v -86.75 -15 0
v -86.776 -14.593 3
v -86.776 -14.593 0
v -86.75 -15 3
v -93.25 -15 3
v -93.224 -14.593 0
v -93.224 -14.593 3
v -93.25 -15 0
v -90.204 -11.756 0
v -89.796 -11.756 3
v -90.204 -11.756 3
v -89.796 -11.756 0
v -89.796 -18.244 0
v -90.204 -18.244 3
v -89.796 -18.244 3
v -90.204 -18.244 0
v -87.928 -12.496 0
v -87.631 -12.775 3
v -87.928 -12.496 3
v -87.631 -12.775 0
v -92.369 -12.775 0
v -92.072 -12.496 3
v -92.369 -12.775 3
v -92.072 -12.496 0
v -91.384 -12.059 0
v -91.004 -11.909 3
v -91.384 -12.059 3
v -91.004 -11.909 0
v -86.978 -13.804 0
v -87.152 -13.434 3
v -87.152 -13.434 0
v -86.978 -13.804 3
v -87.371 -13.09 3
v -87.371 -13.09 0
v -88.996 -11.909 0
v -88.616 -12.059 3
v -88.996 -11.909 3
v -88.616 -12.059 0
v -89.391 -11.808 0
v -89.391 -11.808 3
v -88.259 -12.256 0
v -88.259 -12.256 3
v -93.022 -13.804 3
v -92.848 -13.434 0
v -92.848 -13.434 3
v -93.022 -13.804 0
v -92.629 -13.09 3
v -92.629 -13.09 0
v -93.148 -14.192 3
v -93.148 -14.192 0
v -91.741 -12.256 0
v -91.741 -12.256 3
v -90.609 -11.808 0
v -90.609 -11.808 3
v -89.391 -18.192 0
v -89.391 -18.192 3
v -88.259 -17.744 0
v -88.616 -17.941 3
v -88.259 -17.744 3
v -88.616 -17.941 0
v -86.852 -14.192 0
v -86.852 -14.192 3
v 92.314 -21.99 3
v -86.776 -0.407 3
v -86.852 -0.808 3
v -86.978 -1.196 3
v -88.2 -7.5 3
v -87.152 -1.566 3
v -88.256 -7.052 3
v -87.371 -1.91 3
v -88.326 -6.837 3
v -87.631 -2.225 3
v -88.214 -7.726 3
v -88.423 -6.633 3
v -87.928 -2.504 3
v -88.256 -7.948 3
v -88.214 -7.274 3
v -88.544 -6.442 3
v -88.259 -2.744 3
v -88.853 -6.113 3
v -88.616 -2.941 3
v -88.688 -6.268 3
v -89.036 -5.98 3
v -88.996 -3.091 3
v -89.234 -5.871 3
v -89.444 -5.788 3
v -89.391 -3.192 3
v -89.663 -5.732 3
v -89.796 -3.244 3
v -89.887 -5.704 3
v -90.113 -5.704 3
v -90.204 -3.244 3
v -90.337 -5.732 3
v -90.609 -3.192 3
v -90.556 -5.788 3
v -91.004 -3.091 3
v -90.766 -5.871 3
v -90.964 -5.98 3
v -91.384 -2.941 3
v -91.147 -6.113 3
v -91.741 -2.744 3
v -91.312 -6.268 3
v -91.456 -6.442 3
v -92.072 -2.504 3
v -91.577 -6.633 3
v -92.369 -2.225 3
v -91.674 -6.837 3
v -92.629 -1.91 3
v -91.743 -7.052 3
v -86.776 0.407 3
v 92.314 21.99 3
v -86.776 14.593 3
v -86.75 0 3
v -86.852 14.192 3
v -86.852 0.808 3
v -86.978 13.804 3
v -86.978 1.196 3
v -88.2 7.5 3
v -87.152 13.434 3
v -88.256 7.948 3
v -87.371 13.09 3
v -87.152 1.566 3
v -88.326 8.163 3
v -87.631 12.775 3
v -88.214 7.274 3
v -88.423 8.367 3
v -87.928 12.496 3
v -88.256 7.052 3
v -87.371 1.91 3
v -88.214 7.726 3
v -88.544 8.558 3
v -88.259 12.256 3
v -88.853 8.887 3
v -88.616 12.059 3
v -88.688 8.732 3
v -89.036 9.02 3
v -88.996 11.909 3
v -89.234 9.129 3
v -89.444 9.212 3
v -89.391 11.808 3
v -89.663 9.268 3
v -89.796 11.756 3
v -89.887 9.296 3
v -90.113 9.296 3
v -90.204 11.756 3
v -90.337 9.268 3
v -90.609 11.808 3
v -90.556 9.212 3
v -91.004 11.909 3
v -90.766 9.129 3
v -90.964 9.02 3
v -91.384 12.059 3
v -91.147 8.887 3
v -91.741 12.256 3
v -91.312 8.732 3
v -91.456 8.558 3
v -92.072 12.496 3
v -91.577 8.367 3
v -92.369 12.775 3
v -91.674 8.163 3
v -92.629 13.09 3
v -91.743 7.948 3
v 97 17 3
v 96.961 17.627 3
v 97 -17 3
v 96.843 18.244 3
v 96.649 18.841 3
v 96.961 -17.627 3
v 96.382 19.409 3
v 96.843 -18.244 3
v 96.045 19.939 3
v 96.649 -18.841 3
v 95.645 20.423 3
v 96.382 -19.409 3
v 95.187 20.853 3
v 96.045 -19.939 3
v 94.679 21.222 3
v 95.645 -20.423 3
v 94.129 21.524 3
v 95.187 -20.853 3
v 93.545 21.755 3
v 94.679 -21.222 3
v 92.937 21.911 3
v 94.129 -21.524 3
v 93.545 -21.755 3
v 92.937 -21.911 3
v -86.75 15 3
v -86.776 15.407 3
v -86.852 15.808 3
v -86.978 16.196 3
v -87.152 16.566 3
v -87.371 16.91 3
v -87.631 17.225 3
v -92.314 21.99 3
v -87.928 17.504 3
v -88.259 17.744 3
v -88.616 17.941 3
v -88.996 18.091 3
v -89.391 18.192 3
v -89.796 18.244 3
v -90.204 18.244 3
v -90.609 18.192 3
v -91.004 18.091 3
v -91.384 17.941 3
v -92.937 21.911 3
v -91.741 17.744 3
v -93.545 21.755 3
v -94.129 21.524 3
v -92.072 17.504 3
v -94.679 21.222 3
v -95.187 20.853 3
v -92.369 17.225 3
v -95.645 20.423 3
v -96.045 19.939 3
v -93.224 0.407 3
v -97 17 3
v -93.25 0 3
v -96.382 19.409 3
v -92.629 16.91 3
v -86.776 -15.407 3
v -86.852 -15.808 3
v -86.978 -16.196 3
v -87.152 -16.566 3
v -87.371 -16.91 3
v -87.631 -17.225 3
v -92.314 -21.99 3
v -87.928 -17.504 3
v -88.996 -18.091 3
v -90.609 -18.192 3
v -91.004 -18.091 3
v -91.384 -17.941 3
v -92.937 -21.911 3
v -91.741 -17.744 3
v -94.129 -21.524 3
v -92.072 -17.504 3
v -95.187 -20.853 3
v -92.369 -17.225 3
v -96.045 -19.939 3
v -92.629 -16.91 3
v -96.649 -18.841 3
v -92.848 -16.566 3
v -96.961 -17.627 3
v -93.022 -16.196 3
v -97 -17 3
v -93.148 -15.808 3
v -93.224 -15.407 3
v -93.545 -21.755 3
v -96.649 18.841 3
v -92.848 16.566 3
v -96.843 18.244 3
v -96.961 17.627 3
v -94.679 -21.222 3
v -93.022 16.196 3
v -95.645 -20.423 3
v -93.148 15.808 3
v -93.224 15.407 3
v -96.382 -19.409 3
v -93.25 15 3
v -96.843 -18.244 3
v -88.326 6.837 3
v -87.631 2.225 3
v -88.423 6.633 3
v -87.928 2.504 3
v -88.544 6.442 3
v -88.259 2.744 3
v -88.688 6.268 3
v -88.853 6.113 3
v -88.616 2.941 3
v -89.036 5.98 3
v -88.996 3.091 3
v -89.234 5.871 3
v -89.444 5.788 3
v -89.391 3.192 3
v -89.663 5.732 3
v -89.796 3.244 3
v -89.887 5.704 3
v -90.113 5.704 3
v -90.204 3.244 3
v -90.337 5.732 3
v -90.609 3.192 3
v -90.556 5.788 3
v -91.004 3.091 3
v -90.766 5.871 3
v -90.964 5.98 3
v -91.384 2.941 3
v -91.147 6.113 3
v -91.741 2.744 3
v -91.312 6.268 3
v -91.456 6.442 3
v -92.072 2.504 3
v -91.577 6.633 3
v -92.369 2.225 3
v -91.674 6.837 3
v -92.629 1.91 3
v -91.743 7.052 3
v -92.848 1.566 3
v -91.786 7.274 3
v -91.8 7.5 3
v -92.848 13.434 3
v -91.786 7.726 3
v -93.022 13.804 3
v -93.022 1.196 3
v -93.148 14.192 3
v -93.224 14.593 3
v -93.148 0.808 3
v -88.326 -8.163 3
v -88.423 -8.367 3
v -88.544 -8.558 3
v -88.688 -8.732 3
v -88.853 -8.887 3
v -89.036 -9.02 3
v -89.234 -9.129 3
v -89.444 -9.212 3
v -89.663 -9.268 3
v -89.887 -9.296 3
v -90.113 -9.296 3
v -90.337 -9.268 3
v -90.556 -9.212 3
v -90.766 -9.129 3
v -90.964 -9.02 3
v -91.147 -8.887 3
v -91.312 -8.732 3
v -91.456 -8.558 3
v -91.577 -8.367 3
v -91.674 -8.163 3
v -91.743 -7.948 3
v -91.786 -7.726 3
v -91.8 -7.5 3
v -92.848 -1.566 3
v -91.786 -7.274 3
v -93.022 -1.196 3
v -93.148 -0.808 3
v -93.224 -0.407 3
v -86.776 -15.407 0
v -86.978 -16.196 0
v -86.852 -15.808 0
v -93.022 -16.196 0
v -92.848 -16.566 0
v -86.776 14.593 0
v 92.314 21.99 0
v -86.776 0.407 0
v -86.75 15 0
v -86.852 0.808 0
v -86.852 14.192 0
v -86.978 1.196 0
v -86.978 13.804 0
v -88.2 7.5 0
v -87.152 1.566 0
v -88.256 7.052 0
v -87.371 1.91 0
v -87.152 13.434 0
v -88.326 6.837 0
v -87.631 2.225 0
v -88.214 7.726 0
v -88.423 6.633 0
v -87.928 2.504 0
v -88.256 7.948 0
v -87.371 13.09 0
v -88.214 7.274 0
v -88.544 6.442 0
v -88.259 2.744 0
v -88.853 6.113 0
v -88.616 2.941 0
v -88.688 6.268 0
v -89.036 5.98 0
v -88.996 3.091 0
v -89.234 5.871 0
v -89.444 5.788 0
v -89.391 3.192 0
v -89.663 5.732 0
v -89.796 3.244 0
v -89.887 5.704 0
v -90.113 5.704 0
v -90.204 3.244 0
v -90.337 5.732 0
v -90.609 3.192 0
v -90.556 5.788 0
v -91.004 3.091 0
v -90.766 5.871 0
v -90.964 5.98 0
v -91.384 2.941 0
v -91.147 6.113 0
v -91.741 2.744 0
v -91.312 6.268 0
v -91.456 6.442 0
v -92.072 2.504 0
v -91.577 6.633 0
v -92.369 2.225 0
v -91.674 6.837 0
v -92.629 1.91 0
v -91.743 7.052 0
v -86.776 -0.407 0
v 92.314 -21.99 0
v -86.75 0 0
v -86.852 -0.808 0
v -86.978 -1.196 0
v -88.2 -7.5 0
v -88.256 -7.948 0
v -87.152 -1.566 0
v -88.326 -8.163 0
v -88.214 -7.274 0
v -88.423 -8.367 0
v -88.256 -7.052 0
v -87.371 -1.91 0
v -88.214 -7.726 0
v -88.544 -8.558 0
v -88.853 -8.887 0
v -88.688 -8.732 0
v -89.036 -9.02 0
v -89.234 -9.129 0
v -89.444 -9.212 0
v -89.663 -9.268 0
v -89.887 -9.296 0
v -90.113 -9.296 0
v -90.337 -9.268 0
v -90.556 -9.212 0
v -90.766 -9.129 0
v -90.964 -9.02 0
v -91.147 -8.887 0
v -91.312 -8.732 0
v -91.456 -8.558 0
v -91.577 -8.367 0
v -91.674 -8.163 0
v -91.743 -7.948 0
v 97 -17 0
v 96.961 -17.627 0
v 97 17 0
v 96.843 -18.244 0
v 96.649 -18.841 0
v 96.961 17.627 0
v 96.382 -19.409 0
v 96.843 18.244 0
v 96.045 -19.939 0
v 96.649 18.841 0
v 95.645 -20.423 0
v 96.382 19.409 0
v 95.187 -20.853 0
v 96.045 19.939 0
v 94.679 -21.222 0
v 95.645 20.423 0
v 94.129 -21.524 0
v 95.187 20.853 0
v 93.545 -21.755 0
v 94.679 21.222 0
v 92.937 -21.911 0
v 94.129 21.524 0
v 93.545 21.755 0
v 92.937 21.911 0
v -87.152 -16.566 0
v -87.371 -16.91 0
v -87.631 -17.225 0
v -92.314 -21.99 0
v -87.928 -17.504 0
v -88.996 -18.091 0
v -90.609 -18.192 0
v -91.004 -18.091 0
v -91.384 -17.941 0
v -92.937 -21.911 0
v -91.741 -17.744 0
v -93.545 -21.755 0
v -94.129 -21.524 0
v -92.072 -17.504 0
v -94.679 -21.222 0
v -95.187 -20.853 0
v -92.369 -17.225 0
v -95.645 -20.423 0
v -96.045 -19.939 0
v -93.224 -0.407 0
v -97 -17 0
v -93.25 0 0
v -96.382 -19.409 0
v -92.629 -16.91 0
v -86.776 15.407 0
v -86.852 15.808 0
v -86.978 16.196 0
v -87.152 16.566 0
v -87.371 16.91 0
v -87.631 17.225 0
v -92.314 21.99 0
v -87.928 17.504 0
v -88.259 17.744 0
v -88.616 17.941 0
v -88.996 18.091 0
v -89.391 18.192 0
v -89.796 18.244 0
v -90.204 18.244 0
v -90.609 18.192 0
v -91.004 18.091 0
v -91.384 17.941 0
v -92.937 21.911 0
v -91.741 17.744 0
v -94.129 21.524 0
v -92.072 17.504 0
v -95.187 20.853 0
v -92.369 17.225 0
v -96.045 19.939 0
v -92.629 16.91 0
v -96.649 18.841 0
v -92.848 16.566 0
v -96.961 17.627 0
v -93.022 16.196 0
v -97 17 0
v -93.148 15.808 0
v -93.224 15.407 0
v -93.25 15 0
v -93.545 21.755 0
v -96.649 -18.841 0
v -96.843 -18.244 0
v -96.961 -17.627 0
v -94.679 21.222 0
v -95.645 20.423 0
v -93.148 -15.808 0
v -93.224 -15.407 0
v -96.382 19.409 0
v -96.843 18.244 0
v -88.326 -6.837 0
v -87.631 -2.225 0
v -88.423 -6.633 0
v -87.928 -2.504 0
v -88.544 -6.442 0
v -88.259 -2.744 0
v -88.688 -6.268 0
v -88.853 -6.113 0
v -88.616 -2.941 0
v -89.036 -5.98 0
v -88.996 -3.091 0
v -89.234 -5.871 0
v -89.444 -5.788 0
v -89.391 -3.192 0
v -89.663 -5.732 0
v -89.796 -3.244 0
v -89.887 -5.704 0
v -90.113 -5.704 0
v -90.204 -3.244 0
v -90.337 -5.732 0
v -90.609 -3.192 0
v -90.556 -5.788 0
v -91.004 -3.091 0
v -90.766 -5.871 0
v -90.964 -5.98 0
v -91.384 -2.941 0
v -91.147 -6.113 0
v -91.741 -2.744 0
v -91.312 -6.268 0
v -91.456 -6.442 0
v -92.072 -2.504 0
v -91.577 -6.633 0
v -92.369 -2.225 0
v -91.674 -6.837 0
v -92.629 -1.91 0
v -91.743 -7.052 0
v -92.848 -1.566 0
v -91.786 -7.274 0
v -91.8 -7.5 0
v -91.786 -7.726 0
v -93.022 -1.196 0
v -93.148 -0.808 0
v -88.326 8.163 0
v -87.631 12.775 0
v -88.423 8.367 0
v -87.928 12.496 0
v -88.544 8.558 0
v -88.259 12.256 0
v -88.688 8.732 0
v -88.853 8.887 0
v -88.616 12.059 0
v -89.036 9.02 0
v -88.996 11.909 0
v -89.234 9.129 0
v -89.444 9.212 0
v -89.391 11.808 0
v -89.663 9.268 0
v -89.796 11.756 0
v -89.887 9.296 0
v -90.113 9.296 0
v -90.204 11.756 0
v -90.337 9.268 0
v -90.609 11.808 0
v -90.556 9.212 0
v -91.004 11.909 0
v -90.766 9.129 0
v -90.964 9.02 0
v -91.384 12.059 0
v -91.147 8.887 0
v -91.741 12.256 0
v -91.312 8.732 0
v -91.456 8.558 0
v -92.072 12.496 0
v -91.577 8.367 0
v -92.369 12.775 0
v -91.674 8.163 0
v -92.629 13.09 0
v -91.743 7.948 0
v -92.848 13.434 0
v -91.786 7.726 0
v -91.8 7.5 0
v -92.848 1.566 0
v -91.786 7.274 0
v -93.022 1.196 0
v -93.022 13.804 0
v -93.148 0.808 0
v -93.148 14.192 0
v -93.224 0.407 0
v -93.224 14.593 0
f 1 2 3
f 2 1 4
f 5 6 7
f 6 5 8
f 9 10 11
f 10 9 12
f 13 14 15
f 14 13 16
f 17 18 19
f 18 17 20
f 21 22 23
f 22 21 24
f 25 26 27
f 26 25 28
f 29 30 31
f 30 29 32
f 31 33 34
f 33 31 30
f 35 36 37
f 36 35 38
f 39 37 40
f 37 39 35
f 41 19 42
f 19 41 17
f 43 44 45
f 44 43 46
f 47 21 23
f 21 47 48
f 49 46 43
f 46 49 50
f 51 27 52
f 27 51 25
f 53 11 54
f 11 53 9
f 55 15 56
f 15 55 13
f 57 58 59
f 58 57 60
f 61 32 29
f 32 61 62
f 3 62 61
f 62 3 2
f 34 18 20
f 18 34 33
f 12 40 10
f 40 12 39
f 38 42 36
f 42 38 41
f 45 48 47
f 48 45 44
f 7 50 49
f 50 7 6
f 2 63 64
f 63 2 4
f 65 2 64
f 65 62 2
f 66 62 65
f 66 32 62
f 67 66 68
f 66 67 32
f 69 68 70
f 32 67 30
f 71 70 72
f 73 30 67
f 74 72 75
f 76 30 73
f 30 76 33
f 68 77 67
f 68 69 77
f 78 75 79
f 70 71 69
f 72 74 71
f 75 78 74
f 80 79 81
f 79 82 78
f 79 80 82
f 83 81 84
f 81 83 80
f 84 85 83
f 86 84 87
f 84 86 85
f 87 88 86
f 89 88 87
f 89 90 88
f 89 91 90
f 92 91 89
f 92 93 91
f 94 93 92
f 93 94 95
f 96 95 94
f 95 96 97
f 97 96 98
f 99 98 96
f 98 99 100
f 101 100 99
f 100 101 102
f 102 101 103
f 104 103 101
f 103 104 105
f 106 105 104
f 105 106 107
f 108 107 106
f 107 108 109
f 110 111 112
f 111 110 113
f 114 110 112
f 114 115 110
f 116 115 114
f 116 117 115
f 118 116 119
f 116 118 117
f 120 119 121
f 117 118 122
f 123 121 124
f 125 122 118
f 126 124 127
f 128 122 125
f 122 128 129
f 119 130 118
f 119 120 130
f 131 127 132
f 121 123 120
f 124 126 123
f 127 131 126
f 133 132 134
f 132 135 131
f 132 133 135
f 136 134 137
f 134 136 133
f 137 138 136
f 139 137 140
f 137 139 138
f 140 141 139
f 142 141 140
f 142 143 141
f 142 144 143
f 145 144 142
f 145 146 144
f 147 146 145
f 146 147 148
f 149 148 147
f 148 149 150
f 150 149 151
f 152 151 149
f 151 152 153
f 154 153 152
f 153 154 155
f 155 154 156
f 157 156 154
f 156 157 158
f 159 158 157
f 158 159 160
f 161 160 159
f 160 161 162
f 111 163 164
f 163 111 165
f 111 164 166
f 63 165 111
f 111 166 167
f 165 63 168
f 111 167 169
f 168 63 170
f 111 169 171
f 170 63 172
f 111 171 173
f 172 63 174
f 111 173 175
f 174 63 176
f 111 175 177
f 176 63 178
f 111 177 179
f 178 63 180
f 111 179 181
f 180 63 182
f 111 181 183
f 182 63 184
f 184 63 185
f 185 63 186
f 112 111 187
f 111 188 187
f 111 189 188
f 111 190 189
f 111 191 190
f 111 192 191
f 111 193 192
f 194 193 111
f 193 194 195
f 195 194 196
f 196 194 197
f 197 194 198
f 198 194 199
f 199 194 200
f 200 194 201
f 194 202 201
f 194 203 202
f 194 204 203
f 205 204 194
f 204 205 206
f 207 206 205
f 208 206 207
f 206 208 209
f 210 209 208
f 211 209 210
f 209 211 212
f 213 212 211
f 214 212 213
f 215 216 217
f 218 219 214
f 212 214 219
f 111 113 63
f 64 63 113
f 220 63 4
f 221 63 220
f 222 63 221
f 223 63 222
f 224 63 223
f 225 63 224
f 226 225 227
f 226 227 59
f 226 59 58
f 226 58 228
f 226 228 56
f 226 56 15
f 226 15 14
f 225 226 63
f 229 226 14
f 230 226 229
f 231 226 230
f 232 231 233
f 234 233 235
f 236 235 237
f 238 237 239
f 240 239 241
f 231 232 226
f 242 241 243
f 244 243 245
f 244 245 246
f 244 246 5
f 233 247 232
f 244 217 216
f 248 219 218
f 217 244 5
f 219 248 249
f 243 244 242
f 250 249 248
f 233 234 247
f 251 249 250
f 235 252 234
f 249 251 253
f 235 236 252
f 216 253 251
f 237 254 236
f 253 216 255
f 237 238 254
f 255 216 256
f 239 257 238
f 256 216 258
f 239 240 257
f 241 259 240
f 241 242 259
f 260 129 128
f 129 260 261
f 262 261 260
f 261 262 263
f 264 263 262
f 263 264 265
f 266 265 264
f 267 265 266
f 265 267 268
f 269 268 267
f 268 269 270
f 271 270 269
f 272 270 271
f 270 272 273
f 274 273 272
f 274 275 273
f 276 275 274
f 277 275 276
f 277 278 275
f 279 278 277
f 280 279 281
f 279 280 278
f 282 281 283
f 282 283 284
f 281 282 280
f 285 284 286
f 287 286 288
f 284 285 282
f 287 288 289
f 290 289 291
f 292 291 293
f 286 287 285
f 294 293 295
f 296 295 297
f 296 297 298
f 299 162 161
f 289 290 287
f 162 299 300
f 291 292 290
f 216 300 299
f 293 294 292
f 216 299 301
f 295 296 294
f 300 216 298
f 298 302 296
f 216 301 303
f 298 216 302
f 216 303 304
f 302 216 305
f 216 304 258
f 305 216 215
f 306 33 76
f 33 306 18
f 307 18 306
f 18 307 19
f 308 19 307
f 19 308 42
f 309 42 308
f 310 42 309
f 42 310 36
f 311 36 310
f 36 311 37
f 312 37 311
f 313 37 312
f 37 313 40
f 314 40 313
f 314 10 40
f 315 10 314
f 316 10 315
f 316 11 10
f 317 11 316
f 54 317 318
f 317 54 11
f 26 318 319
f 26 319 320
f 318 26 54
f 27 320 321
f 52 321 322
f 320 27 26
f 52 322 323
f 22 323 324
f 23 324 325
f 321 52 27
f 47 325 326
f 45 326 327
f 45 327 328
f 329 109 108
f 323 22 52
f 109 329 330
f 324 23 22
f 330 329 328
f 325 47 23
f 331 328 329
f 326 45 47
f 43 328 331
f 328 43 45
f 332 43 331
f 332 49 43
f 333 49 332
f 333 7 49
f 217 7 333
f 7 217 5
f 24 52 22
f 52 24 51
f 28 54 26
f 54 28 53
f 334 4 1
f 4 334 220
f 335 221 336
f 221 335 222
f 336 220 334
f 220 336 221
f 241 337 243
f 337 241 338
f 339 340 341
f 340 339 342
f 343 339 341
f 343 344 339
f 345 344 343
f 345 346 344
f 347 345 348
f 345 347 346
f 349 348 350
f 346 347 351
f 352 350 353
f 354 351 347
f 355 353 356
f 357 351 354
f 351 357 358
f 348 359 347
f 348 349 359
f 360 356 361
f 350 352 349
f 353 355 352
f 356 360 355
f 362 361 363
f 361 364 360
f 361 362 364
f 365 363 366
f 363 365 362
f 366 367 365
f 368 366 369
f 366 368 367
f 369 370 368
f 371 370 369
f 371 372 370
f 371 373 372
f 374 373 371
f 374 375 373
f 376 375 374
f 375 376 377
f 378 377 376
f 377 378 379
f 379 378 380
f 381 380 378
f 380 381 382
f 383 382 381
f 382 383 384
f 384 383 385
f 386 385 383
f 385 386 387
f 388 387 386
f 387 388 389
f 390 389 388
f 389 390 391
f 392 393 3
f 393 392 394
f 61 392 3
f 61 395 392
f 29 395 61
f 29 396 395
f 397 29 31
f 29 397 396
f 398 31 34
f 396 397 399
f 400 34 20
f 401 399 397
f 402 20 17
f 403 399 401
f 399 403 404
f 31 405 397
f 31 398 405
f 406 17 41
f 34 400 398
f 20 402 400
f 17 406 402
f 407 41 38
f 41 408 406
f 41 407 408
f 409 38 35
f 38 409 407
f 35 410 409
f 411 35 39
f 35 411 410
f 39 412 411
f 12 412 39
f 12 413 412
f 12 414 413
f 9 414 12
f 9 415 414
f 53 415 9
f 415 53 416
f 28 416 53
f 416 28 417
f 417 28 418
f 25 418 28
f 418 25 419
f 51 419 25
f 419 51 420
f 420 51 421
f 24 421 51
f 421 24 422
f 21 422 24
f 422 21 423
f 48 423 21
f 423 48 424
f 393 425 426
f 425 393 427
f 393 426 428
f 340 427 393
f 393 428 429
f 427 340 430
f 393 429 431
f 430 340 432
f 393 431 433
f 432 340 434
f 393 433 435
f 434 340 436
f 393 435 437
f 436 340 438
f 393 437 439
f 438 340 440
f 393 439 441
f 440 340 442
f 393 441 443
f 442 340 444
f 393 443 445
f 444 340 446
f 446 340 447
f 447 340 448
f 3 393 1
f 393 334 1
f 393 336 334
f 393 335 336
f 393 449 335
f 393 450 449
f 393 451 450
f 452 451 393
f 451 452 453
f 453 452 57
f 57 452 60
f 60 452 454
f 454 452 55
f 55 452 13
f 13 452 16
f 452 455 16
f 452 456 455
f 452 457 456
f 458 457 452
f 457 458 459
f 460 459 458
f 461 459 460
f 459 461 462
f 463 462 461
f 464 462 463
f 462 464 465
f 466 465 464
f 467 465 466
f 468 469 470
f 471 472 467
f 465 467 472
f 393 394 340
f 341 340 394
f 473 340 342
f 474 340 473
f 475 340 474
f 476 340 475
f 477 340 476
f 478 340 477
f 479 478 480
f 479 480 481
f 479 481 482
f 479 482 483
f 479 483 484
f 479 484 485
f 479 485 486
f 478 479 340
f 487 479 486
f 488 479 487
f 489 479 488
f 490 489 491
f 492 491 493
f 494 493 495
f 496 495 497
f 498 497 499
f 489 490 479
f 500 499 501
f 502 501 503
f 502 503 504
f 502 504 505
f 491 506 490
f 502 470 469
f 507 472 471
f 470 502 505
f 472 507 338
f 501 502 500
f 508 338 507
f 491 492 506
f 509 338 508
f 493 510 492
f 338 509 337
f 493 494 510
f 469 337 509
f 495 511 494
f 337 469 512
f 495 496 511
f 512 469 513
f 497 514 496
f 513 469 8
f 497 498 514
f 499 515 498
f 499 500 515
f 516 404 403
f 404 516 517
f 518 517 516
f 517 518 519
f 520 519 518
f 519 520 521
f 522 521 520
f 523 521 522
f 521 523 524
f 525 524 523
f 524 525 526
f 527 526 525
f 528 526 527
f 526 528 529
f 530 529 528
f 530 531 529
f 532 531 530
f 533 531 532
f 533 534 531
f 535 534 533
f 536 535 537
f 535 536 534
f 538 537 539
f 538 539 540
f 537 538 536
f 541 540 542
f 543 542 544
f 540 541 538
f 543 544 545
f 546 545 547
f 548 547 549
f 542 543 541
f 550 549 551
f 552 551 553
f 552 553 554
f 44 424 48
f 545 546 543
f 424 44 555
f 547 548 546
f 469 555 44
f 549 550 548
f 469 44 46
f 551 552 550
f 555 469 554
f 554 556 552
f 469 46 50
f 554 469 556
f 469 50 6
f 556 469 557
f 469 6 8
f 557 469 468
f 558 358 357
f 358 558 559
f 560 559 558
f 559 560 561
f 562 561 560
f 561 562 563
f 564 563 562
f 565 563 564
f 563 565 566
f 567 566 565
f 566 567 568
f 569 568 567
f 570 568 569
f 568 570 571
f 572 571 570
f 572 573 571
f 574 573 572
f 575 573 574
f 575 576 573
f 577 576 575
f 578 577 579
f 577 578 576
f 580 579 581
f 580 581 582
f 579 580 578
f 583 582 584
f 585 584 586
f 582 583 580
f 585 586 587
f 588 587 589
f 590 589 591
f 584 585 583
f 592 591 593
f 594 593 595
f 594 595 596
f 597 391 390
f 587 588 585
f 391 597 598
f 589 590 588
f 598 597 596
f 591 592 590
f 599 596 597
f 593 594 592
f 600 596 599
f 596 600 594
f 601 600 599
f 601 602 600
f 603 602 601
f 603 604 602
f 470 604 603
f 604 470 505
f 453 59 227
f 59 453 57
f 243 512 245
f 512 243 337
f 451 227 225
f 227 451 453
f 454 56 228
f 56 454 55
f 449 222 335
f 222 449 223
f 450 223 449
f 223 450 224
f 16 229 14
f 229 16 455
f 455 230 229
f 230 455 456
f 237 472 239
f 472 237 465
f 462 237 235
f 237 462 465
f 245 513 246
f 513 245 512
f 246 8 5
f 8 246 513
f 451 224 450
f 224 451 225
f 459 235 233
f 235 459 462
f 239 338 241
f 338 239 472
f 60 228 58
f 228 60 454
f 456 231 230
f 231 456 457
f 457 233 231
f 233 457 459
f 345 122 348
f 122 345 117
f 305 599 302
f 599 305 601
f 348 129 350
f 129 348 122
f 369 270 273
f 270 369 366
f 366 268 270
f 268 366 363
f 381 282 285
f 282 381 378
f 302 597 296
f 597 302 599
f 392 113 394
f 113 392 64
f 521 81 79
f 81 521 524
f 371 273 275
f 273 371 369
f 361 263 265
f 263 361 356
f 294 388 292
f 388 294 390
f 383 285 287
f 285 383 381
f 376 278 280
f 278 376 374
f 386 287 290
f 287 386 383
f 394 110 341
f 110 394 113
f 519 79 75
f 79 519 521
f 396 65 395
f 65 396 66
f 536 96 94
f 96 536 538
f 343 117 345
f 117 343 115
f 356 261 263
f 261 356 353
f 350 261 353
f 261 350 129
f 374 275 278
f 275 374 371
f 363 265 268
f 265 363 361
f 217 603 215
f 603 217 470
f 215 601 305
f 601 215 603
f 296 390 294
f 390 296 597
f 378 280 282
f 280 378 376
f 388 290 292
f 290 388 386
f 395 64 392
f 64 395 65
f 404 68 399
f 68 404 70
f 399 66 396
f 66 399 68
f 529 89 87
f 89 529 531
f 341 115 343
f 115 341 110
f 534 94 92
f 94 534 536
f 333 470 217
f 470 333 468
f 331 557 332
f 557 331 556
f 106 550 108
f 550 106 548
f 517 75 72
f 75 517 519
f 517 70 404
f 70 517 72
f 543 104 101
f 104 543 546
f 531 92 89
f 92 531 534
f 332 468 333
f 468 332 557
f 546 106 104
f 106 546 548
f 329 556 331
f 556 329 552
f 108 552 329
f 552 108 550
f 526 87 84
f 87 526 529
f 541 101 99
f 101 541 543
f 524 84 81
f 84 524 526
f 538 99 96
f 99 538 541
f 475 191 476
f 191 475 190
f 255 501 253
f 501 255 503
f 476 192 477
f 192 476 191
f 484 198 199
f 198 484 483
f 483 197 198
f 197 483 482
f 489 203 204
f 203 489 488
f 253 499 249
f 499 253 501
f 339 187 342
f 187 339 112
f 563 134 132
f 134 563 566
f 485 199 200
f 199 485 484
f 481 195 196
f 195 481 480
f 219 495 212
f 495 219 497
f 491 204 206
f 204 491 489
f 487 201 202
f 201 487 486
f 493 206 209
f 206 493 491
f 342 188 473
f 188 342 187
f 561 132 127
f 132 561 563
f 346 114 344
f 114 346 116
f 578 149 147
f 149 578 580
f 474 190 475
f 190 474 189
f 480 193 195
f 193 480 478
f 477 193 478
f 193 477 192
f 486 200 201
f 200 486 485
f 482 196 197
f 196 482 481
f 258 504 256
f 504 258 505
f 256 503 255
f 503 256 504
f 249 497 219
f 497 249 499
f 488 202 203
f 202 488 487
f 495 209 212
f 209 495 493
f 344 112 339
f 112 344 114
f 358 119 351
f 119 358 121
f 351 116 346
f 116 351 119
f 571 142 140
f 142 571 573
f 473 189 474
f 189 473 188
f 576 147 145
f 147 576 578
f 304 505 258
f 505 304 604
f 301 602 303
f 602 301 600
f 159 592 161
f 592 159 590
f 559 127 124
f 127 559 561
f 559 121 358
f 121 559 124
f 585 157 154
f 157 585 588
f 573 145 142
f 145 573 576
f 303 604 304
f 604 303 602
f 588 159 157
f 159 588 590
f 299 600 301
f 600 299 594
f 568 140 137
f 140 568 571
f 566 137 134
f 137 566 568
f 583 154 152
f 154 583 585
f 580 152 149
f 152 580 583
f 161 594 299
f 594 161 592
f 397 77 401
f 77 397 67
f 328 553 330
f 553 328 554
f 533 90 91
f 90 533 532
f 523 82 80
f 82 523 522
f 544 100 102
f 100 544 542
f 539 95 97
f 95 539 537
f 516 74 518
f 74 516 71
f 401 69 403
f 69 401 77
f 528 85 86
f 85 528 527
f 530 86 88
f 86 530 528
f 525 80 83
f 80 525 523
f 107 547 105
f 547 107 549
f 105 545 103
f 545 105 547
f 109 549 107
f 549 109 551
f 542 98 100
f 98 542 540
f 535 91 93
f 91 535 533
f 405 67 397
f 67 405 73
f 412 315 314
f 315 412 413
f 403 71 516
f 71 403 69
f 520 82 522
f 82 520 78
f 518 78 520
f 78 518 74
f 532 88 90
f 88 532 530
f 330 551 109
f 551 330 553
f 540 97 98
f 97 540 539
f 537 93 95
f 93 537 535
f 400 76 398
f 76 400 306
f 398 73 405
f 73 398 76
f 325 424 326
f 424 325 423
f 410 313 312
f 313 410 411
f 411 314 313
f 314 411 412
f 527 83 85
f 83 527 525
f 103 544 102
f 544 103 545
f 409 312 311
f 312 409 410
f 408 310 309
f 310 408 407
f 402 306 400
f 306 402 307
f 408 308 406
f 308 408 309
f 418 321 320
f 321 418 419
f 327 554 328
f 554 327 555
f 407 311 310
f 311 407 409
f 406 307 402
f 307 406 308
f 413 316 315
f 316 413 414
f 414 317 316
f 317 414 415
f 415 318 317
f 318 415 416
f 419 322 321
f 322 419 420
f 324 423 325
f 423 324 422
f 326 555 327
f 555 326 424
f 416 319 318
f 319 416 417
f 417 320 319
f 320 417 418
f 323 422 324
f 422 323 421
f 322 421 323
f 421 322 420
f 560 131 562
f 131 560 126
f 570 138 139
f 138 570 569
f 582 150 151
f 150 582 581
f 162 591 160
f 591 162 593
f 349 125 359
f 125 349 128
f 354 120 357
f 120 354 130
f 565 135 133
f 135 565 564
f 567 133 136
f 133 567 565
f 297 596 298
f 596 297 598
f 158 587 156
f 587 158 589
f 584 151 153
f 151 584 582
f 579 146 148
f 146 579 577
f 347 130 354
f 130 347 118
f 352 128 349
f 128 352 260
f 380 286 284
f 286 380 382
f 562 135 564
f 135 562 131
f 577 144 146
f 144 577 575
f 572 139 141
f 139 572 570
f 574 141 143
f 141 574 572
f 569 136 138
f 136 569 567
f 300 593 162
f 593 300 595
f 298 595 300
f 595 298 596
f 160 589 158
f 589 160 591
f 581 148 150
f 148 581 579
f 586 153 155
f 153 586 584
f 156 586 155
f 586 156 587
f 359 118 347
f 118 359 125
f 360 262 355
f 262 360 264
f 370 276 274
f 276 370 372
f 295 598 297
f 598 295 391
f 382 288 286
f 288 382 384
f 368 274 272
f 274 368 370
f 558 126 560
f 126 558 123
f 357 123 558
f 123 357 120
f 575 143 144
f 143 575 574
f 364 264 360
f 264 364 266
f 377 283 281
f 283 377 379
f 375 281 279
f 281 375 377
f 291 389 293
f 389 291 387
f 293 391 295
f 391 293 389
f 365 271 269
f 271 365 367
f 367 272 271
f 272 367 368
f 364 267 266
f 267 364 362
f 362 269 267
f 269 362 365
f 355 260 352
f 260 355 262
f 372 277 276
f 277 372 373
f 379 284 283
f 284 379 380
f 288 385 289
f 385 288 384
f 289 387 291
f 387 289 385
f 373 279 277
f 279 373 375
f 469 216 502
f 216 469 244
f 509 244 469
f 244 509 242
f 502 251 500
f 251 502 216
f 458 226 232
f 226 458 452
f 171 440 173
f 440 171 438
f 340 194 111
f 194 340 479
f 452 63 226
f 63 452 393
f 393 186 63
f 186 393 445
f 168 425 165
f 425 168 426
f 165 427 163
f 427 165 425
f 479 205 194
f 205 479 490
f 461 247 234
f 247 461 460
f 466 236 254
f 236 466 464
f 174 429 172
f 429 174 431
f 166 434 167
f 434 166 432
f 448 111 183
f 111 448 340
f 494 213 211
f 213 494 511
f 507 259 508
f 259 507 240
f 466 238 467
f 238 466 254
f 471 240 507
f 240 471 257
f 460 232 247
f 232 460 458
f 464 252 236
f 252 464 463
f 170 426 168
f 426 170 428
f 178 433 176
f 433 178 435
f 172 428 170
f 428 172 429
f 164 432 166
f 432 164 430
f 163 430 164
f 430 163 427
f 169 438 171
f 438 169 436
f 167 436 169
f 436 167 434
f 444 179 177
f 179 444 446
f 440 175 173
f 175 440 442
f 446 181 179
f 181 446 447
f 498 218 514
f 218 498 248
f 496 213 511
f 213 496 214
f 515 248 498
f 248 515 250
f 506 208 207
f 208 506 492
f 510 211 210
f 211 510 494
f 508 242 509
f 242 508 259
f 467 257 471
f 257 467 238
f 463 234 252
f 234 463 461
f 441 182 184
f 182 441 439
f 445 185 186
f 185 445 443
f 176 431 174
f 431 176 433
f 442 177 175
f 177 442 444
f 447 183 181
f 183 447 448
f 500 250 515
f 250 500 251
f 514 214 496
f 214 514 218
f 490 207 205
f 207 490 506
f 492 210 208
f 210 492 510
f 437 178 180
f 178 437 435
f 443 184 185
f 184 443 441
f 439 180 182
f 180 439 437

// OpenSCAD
$fn = 50;


difference() {
	union() {
		hull() {
			translate(v = [-92.0000000000, 17.0000000000, 0]) {
				cylinder(h = 3, r = 5);
			}
			translate(v = [92.0000000000, 17.0000000000, 0]) {
				cylinder(h = 3, r = 5);
			}
			translate(v = [-92.0000000000, -17.0000000000, 0]) {
				cylinder(h = 3, r = 5);
			}
			translate(v = [92.0000000000, -17.0000000000, 0]) {
				cylinder(h = 3, r = 5);
			}
		}
	}
	union() {
		translate(v = [-90.0000000000, -15.0000000000, 0]) {
			cylinder(h = 3, r = 3.2500000000);
		}
		translate(v = [-90.0000000000, 0.0000000000, 0]) {
			cylinder(h = 3, r = 3.2500000000);
		}
		translate(v = [-90.0000000000, 15.0000000000, 0]) {
			cylinder(h = 3, r = 3.2500000000);
		}
		translate(v = [-90.0000000000, -15.0000000000, 0]) {
			cylinder(h = 3, r = 1.8000000000);
		}
		translate(v = [-90.0000000000, -7.5000000000, 0]) {
			cylinder(h = 3, r = 1.8000000000);
		}
		translate(v = [-90.0000000000, 0.0000000000, 0]) {
			cylinder(h = 3, r = 1.8000000000);
		}
		translate(v = [-90.0000000000, 7.5000000000, 0]) {
			cylinder(h = 3, r = 1.8000000000);
		}
		translate(v = [-90.0000000000, 15.0000000000, 0]) {
			cylinder(h = 3, r = 1.8000000000);
		}
		translate(v = [-90.0000000000, -15.0000000000, 0]) {
			cylinder(h = 3, r = 1.8000000000);
		}
		translate(v = [-90.0000000000, -7.5000000000, 0]) {
			cylinder(h = 3, r = 1.8000000000);
		}
		translate(v = [-90.0000000000, 0.0000000000, 0]) {
			cylinder(h = 3, r = 1.8000000000);
		}
		translate(v = [-90.0000000000, 7.5000000000, 0]) {
			cylinder(h = 3, r = 1.8000000000);
		}
		translate(v = [-90.0000000000, 15.0000000000, 0]) {
			cylinder(h = 3, r = 1.8000000000);
		}
		translate(v = [-90.0000000000, -15.0000000000, 0]) {
			cylinder(h = 3, r = 1.8000000000);
		}
		translate(v = [-90.0000000000, -7.5000000000, 0]) {
			cylinder(h = 3, r = 1.8000000000);
		}
		translate(v = [-90.0000000000, 0.0000000000, 0]) {
			cylinder(h = 3, r = 1.8000000000);
		}
		translate(v = [-90.0000000000, 7.5000000000, 0]) {
			cylinder(h = 3, r = 1.8000000000);
		}
		translate(v = [-90.0000000000, 15.0000000000, 0]) {
			cylinder(h = 3, r = 1.8000000000);
		}
	}
}
